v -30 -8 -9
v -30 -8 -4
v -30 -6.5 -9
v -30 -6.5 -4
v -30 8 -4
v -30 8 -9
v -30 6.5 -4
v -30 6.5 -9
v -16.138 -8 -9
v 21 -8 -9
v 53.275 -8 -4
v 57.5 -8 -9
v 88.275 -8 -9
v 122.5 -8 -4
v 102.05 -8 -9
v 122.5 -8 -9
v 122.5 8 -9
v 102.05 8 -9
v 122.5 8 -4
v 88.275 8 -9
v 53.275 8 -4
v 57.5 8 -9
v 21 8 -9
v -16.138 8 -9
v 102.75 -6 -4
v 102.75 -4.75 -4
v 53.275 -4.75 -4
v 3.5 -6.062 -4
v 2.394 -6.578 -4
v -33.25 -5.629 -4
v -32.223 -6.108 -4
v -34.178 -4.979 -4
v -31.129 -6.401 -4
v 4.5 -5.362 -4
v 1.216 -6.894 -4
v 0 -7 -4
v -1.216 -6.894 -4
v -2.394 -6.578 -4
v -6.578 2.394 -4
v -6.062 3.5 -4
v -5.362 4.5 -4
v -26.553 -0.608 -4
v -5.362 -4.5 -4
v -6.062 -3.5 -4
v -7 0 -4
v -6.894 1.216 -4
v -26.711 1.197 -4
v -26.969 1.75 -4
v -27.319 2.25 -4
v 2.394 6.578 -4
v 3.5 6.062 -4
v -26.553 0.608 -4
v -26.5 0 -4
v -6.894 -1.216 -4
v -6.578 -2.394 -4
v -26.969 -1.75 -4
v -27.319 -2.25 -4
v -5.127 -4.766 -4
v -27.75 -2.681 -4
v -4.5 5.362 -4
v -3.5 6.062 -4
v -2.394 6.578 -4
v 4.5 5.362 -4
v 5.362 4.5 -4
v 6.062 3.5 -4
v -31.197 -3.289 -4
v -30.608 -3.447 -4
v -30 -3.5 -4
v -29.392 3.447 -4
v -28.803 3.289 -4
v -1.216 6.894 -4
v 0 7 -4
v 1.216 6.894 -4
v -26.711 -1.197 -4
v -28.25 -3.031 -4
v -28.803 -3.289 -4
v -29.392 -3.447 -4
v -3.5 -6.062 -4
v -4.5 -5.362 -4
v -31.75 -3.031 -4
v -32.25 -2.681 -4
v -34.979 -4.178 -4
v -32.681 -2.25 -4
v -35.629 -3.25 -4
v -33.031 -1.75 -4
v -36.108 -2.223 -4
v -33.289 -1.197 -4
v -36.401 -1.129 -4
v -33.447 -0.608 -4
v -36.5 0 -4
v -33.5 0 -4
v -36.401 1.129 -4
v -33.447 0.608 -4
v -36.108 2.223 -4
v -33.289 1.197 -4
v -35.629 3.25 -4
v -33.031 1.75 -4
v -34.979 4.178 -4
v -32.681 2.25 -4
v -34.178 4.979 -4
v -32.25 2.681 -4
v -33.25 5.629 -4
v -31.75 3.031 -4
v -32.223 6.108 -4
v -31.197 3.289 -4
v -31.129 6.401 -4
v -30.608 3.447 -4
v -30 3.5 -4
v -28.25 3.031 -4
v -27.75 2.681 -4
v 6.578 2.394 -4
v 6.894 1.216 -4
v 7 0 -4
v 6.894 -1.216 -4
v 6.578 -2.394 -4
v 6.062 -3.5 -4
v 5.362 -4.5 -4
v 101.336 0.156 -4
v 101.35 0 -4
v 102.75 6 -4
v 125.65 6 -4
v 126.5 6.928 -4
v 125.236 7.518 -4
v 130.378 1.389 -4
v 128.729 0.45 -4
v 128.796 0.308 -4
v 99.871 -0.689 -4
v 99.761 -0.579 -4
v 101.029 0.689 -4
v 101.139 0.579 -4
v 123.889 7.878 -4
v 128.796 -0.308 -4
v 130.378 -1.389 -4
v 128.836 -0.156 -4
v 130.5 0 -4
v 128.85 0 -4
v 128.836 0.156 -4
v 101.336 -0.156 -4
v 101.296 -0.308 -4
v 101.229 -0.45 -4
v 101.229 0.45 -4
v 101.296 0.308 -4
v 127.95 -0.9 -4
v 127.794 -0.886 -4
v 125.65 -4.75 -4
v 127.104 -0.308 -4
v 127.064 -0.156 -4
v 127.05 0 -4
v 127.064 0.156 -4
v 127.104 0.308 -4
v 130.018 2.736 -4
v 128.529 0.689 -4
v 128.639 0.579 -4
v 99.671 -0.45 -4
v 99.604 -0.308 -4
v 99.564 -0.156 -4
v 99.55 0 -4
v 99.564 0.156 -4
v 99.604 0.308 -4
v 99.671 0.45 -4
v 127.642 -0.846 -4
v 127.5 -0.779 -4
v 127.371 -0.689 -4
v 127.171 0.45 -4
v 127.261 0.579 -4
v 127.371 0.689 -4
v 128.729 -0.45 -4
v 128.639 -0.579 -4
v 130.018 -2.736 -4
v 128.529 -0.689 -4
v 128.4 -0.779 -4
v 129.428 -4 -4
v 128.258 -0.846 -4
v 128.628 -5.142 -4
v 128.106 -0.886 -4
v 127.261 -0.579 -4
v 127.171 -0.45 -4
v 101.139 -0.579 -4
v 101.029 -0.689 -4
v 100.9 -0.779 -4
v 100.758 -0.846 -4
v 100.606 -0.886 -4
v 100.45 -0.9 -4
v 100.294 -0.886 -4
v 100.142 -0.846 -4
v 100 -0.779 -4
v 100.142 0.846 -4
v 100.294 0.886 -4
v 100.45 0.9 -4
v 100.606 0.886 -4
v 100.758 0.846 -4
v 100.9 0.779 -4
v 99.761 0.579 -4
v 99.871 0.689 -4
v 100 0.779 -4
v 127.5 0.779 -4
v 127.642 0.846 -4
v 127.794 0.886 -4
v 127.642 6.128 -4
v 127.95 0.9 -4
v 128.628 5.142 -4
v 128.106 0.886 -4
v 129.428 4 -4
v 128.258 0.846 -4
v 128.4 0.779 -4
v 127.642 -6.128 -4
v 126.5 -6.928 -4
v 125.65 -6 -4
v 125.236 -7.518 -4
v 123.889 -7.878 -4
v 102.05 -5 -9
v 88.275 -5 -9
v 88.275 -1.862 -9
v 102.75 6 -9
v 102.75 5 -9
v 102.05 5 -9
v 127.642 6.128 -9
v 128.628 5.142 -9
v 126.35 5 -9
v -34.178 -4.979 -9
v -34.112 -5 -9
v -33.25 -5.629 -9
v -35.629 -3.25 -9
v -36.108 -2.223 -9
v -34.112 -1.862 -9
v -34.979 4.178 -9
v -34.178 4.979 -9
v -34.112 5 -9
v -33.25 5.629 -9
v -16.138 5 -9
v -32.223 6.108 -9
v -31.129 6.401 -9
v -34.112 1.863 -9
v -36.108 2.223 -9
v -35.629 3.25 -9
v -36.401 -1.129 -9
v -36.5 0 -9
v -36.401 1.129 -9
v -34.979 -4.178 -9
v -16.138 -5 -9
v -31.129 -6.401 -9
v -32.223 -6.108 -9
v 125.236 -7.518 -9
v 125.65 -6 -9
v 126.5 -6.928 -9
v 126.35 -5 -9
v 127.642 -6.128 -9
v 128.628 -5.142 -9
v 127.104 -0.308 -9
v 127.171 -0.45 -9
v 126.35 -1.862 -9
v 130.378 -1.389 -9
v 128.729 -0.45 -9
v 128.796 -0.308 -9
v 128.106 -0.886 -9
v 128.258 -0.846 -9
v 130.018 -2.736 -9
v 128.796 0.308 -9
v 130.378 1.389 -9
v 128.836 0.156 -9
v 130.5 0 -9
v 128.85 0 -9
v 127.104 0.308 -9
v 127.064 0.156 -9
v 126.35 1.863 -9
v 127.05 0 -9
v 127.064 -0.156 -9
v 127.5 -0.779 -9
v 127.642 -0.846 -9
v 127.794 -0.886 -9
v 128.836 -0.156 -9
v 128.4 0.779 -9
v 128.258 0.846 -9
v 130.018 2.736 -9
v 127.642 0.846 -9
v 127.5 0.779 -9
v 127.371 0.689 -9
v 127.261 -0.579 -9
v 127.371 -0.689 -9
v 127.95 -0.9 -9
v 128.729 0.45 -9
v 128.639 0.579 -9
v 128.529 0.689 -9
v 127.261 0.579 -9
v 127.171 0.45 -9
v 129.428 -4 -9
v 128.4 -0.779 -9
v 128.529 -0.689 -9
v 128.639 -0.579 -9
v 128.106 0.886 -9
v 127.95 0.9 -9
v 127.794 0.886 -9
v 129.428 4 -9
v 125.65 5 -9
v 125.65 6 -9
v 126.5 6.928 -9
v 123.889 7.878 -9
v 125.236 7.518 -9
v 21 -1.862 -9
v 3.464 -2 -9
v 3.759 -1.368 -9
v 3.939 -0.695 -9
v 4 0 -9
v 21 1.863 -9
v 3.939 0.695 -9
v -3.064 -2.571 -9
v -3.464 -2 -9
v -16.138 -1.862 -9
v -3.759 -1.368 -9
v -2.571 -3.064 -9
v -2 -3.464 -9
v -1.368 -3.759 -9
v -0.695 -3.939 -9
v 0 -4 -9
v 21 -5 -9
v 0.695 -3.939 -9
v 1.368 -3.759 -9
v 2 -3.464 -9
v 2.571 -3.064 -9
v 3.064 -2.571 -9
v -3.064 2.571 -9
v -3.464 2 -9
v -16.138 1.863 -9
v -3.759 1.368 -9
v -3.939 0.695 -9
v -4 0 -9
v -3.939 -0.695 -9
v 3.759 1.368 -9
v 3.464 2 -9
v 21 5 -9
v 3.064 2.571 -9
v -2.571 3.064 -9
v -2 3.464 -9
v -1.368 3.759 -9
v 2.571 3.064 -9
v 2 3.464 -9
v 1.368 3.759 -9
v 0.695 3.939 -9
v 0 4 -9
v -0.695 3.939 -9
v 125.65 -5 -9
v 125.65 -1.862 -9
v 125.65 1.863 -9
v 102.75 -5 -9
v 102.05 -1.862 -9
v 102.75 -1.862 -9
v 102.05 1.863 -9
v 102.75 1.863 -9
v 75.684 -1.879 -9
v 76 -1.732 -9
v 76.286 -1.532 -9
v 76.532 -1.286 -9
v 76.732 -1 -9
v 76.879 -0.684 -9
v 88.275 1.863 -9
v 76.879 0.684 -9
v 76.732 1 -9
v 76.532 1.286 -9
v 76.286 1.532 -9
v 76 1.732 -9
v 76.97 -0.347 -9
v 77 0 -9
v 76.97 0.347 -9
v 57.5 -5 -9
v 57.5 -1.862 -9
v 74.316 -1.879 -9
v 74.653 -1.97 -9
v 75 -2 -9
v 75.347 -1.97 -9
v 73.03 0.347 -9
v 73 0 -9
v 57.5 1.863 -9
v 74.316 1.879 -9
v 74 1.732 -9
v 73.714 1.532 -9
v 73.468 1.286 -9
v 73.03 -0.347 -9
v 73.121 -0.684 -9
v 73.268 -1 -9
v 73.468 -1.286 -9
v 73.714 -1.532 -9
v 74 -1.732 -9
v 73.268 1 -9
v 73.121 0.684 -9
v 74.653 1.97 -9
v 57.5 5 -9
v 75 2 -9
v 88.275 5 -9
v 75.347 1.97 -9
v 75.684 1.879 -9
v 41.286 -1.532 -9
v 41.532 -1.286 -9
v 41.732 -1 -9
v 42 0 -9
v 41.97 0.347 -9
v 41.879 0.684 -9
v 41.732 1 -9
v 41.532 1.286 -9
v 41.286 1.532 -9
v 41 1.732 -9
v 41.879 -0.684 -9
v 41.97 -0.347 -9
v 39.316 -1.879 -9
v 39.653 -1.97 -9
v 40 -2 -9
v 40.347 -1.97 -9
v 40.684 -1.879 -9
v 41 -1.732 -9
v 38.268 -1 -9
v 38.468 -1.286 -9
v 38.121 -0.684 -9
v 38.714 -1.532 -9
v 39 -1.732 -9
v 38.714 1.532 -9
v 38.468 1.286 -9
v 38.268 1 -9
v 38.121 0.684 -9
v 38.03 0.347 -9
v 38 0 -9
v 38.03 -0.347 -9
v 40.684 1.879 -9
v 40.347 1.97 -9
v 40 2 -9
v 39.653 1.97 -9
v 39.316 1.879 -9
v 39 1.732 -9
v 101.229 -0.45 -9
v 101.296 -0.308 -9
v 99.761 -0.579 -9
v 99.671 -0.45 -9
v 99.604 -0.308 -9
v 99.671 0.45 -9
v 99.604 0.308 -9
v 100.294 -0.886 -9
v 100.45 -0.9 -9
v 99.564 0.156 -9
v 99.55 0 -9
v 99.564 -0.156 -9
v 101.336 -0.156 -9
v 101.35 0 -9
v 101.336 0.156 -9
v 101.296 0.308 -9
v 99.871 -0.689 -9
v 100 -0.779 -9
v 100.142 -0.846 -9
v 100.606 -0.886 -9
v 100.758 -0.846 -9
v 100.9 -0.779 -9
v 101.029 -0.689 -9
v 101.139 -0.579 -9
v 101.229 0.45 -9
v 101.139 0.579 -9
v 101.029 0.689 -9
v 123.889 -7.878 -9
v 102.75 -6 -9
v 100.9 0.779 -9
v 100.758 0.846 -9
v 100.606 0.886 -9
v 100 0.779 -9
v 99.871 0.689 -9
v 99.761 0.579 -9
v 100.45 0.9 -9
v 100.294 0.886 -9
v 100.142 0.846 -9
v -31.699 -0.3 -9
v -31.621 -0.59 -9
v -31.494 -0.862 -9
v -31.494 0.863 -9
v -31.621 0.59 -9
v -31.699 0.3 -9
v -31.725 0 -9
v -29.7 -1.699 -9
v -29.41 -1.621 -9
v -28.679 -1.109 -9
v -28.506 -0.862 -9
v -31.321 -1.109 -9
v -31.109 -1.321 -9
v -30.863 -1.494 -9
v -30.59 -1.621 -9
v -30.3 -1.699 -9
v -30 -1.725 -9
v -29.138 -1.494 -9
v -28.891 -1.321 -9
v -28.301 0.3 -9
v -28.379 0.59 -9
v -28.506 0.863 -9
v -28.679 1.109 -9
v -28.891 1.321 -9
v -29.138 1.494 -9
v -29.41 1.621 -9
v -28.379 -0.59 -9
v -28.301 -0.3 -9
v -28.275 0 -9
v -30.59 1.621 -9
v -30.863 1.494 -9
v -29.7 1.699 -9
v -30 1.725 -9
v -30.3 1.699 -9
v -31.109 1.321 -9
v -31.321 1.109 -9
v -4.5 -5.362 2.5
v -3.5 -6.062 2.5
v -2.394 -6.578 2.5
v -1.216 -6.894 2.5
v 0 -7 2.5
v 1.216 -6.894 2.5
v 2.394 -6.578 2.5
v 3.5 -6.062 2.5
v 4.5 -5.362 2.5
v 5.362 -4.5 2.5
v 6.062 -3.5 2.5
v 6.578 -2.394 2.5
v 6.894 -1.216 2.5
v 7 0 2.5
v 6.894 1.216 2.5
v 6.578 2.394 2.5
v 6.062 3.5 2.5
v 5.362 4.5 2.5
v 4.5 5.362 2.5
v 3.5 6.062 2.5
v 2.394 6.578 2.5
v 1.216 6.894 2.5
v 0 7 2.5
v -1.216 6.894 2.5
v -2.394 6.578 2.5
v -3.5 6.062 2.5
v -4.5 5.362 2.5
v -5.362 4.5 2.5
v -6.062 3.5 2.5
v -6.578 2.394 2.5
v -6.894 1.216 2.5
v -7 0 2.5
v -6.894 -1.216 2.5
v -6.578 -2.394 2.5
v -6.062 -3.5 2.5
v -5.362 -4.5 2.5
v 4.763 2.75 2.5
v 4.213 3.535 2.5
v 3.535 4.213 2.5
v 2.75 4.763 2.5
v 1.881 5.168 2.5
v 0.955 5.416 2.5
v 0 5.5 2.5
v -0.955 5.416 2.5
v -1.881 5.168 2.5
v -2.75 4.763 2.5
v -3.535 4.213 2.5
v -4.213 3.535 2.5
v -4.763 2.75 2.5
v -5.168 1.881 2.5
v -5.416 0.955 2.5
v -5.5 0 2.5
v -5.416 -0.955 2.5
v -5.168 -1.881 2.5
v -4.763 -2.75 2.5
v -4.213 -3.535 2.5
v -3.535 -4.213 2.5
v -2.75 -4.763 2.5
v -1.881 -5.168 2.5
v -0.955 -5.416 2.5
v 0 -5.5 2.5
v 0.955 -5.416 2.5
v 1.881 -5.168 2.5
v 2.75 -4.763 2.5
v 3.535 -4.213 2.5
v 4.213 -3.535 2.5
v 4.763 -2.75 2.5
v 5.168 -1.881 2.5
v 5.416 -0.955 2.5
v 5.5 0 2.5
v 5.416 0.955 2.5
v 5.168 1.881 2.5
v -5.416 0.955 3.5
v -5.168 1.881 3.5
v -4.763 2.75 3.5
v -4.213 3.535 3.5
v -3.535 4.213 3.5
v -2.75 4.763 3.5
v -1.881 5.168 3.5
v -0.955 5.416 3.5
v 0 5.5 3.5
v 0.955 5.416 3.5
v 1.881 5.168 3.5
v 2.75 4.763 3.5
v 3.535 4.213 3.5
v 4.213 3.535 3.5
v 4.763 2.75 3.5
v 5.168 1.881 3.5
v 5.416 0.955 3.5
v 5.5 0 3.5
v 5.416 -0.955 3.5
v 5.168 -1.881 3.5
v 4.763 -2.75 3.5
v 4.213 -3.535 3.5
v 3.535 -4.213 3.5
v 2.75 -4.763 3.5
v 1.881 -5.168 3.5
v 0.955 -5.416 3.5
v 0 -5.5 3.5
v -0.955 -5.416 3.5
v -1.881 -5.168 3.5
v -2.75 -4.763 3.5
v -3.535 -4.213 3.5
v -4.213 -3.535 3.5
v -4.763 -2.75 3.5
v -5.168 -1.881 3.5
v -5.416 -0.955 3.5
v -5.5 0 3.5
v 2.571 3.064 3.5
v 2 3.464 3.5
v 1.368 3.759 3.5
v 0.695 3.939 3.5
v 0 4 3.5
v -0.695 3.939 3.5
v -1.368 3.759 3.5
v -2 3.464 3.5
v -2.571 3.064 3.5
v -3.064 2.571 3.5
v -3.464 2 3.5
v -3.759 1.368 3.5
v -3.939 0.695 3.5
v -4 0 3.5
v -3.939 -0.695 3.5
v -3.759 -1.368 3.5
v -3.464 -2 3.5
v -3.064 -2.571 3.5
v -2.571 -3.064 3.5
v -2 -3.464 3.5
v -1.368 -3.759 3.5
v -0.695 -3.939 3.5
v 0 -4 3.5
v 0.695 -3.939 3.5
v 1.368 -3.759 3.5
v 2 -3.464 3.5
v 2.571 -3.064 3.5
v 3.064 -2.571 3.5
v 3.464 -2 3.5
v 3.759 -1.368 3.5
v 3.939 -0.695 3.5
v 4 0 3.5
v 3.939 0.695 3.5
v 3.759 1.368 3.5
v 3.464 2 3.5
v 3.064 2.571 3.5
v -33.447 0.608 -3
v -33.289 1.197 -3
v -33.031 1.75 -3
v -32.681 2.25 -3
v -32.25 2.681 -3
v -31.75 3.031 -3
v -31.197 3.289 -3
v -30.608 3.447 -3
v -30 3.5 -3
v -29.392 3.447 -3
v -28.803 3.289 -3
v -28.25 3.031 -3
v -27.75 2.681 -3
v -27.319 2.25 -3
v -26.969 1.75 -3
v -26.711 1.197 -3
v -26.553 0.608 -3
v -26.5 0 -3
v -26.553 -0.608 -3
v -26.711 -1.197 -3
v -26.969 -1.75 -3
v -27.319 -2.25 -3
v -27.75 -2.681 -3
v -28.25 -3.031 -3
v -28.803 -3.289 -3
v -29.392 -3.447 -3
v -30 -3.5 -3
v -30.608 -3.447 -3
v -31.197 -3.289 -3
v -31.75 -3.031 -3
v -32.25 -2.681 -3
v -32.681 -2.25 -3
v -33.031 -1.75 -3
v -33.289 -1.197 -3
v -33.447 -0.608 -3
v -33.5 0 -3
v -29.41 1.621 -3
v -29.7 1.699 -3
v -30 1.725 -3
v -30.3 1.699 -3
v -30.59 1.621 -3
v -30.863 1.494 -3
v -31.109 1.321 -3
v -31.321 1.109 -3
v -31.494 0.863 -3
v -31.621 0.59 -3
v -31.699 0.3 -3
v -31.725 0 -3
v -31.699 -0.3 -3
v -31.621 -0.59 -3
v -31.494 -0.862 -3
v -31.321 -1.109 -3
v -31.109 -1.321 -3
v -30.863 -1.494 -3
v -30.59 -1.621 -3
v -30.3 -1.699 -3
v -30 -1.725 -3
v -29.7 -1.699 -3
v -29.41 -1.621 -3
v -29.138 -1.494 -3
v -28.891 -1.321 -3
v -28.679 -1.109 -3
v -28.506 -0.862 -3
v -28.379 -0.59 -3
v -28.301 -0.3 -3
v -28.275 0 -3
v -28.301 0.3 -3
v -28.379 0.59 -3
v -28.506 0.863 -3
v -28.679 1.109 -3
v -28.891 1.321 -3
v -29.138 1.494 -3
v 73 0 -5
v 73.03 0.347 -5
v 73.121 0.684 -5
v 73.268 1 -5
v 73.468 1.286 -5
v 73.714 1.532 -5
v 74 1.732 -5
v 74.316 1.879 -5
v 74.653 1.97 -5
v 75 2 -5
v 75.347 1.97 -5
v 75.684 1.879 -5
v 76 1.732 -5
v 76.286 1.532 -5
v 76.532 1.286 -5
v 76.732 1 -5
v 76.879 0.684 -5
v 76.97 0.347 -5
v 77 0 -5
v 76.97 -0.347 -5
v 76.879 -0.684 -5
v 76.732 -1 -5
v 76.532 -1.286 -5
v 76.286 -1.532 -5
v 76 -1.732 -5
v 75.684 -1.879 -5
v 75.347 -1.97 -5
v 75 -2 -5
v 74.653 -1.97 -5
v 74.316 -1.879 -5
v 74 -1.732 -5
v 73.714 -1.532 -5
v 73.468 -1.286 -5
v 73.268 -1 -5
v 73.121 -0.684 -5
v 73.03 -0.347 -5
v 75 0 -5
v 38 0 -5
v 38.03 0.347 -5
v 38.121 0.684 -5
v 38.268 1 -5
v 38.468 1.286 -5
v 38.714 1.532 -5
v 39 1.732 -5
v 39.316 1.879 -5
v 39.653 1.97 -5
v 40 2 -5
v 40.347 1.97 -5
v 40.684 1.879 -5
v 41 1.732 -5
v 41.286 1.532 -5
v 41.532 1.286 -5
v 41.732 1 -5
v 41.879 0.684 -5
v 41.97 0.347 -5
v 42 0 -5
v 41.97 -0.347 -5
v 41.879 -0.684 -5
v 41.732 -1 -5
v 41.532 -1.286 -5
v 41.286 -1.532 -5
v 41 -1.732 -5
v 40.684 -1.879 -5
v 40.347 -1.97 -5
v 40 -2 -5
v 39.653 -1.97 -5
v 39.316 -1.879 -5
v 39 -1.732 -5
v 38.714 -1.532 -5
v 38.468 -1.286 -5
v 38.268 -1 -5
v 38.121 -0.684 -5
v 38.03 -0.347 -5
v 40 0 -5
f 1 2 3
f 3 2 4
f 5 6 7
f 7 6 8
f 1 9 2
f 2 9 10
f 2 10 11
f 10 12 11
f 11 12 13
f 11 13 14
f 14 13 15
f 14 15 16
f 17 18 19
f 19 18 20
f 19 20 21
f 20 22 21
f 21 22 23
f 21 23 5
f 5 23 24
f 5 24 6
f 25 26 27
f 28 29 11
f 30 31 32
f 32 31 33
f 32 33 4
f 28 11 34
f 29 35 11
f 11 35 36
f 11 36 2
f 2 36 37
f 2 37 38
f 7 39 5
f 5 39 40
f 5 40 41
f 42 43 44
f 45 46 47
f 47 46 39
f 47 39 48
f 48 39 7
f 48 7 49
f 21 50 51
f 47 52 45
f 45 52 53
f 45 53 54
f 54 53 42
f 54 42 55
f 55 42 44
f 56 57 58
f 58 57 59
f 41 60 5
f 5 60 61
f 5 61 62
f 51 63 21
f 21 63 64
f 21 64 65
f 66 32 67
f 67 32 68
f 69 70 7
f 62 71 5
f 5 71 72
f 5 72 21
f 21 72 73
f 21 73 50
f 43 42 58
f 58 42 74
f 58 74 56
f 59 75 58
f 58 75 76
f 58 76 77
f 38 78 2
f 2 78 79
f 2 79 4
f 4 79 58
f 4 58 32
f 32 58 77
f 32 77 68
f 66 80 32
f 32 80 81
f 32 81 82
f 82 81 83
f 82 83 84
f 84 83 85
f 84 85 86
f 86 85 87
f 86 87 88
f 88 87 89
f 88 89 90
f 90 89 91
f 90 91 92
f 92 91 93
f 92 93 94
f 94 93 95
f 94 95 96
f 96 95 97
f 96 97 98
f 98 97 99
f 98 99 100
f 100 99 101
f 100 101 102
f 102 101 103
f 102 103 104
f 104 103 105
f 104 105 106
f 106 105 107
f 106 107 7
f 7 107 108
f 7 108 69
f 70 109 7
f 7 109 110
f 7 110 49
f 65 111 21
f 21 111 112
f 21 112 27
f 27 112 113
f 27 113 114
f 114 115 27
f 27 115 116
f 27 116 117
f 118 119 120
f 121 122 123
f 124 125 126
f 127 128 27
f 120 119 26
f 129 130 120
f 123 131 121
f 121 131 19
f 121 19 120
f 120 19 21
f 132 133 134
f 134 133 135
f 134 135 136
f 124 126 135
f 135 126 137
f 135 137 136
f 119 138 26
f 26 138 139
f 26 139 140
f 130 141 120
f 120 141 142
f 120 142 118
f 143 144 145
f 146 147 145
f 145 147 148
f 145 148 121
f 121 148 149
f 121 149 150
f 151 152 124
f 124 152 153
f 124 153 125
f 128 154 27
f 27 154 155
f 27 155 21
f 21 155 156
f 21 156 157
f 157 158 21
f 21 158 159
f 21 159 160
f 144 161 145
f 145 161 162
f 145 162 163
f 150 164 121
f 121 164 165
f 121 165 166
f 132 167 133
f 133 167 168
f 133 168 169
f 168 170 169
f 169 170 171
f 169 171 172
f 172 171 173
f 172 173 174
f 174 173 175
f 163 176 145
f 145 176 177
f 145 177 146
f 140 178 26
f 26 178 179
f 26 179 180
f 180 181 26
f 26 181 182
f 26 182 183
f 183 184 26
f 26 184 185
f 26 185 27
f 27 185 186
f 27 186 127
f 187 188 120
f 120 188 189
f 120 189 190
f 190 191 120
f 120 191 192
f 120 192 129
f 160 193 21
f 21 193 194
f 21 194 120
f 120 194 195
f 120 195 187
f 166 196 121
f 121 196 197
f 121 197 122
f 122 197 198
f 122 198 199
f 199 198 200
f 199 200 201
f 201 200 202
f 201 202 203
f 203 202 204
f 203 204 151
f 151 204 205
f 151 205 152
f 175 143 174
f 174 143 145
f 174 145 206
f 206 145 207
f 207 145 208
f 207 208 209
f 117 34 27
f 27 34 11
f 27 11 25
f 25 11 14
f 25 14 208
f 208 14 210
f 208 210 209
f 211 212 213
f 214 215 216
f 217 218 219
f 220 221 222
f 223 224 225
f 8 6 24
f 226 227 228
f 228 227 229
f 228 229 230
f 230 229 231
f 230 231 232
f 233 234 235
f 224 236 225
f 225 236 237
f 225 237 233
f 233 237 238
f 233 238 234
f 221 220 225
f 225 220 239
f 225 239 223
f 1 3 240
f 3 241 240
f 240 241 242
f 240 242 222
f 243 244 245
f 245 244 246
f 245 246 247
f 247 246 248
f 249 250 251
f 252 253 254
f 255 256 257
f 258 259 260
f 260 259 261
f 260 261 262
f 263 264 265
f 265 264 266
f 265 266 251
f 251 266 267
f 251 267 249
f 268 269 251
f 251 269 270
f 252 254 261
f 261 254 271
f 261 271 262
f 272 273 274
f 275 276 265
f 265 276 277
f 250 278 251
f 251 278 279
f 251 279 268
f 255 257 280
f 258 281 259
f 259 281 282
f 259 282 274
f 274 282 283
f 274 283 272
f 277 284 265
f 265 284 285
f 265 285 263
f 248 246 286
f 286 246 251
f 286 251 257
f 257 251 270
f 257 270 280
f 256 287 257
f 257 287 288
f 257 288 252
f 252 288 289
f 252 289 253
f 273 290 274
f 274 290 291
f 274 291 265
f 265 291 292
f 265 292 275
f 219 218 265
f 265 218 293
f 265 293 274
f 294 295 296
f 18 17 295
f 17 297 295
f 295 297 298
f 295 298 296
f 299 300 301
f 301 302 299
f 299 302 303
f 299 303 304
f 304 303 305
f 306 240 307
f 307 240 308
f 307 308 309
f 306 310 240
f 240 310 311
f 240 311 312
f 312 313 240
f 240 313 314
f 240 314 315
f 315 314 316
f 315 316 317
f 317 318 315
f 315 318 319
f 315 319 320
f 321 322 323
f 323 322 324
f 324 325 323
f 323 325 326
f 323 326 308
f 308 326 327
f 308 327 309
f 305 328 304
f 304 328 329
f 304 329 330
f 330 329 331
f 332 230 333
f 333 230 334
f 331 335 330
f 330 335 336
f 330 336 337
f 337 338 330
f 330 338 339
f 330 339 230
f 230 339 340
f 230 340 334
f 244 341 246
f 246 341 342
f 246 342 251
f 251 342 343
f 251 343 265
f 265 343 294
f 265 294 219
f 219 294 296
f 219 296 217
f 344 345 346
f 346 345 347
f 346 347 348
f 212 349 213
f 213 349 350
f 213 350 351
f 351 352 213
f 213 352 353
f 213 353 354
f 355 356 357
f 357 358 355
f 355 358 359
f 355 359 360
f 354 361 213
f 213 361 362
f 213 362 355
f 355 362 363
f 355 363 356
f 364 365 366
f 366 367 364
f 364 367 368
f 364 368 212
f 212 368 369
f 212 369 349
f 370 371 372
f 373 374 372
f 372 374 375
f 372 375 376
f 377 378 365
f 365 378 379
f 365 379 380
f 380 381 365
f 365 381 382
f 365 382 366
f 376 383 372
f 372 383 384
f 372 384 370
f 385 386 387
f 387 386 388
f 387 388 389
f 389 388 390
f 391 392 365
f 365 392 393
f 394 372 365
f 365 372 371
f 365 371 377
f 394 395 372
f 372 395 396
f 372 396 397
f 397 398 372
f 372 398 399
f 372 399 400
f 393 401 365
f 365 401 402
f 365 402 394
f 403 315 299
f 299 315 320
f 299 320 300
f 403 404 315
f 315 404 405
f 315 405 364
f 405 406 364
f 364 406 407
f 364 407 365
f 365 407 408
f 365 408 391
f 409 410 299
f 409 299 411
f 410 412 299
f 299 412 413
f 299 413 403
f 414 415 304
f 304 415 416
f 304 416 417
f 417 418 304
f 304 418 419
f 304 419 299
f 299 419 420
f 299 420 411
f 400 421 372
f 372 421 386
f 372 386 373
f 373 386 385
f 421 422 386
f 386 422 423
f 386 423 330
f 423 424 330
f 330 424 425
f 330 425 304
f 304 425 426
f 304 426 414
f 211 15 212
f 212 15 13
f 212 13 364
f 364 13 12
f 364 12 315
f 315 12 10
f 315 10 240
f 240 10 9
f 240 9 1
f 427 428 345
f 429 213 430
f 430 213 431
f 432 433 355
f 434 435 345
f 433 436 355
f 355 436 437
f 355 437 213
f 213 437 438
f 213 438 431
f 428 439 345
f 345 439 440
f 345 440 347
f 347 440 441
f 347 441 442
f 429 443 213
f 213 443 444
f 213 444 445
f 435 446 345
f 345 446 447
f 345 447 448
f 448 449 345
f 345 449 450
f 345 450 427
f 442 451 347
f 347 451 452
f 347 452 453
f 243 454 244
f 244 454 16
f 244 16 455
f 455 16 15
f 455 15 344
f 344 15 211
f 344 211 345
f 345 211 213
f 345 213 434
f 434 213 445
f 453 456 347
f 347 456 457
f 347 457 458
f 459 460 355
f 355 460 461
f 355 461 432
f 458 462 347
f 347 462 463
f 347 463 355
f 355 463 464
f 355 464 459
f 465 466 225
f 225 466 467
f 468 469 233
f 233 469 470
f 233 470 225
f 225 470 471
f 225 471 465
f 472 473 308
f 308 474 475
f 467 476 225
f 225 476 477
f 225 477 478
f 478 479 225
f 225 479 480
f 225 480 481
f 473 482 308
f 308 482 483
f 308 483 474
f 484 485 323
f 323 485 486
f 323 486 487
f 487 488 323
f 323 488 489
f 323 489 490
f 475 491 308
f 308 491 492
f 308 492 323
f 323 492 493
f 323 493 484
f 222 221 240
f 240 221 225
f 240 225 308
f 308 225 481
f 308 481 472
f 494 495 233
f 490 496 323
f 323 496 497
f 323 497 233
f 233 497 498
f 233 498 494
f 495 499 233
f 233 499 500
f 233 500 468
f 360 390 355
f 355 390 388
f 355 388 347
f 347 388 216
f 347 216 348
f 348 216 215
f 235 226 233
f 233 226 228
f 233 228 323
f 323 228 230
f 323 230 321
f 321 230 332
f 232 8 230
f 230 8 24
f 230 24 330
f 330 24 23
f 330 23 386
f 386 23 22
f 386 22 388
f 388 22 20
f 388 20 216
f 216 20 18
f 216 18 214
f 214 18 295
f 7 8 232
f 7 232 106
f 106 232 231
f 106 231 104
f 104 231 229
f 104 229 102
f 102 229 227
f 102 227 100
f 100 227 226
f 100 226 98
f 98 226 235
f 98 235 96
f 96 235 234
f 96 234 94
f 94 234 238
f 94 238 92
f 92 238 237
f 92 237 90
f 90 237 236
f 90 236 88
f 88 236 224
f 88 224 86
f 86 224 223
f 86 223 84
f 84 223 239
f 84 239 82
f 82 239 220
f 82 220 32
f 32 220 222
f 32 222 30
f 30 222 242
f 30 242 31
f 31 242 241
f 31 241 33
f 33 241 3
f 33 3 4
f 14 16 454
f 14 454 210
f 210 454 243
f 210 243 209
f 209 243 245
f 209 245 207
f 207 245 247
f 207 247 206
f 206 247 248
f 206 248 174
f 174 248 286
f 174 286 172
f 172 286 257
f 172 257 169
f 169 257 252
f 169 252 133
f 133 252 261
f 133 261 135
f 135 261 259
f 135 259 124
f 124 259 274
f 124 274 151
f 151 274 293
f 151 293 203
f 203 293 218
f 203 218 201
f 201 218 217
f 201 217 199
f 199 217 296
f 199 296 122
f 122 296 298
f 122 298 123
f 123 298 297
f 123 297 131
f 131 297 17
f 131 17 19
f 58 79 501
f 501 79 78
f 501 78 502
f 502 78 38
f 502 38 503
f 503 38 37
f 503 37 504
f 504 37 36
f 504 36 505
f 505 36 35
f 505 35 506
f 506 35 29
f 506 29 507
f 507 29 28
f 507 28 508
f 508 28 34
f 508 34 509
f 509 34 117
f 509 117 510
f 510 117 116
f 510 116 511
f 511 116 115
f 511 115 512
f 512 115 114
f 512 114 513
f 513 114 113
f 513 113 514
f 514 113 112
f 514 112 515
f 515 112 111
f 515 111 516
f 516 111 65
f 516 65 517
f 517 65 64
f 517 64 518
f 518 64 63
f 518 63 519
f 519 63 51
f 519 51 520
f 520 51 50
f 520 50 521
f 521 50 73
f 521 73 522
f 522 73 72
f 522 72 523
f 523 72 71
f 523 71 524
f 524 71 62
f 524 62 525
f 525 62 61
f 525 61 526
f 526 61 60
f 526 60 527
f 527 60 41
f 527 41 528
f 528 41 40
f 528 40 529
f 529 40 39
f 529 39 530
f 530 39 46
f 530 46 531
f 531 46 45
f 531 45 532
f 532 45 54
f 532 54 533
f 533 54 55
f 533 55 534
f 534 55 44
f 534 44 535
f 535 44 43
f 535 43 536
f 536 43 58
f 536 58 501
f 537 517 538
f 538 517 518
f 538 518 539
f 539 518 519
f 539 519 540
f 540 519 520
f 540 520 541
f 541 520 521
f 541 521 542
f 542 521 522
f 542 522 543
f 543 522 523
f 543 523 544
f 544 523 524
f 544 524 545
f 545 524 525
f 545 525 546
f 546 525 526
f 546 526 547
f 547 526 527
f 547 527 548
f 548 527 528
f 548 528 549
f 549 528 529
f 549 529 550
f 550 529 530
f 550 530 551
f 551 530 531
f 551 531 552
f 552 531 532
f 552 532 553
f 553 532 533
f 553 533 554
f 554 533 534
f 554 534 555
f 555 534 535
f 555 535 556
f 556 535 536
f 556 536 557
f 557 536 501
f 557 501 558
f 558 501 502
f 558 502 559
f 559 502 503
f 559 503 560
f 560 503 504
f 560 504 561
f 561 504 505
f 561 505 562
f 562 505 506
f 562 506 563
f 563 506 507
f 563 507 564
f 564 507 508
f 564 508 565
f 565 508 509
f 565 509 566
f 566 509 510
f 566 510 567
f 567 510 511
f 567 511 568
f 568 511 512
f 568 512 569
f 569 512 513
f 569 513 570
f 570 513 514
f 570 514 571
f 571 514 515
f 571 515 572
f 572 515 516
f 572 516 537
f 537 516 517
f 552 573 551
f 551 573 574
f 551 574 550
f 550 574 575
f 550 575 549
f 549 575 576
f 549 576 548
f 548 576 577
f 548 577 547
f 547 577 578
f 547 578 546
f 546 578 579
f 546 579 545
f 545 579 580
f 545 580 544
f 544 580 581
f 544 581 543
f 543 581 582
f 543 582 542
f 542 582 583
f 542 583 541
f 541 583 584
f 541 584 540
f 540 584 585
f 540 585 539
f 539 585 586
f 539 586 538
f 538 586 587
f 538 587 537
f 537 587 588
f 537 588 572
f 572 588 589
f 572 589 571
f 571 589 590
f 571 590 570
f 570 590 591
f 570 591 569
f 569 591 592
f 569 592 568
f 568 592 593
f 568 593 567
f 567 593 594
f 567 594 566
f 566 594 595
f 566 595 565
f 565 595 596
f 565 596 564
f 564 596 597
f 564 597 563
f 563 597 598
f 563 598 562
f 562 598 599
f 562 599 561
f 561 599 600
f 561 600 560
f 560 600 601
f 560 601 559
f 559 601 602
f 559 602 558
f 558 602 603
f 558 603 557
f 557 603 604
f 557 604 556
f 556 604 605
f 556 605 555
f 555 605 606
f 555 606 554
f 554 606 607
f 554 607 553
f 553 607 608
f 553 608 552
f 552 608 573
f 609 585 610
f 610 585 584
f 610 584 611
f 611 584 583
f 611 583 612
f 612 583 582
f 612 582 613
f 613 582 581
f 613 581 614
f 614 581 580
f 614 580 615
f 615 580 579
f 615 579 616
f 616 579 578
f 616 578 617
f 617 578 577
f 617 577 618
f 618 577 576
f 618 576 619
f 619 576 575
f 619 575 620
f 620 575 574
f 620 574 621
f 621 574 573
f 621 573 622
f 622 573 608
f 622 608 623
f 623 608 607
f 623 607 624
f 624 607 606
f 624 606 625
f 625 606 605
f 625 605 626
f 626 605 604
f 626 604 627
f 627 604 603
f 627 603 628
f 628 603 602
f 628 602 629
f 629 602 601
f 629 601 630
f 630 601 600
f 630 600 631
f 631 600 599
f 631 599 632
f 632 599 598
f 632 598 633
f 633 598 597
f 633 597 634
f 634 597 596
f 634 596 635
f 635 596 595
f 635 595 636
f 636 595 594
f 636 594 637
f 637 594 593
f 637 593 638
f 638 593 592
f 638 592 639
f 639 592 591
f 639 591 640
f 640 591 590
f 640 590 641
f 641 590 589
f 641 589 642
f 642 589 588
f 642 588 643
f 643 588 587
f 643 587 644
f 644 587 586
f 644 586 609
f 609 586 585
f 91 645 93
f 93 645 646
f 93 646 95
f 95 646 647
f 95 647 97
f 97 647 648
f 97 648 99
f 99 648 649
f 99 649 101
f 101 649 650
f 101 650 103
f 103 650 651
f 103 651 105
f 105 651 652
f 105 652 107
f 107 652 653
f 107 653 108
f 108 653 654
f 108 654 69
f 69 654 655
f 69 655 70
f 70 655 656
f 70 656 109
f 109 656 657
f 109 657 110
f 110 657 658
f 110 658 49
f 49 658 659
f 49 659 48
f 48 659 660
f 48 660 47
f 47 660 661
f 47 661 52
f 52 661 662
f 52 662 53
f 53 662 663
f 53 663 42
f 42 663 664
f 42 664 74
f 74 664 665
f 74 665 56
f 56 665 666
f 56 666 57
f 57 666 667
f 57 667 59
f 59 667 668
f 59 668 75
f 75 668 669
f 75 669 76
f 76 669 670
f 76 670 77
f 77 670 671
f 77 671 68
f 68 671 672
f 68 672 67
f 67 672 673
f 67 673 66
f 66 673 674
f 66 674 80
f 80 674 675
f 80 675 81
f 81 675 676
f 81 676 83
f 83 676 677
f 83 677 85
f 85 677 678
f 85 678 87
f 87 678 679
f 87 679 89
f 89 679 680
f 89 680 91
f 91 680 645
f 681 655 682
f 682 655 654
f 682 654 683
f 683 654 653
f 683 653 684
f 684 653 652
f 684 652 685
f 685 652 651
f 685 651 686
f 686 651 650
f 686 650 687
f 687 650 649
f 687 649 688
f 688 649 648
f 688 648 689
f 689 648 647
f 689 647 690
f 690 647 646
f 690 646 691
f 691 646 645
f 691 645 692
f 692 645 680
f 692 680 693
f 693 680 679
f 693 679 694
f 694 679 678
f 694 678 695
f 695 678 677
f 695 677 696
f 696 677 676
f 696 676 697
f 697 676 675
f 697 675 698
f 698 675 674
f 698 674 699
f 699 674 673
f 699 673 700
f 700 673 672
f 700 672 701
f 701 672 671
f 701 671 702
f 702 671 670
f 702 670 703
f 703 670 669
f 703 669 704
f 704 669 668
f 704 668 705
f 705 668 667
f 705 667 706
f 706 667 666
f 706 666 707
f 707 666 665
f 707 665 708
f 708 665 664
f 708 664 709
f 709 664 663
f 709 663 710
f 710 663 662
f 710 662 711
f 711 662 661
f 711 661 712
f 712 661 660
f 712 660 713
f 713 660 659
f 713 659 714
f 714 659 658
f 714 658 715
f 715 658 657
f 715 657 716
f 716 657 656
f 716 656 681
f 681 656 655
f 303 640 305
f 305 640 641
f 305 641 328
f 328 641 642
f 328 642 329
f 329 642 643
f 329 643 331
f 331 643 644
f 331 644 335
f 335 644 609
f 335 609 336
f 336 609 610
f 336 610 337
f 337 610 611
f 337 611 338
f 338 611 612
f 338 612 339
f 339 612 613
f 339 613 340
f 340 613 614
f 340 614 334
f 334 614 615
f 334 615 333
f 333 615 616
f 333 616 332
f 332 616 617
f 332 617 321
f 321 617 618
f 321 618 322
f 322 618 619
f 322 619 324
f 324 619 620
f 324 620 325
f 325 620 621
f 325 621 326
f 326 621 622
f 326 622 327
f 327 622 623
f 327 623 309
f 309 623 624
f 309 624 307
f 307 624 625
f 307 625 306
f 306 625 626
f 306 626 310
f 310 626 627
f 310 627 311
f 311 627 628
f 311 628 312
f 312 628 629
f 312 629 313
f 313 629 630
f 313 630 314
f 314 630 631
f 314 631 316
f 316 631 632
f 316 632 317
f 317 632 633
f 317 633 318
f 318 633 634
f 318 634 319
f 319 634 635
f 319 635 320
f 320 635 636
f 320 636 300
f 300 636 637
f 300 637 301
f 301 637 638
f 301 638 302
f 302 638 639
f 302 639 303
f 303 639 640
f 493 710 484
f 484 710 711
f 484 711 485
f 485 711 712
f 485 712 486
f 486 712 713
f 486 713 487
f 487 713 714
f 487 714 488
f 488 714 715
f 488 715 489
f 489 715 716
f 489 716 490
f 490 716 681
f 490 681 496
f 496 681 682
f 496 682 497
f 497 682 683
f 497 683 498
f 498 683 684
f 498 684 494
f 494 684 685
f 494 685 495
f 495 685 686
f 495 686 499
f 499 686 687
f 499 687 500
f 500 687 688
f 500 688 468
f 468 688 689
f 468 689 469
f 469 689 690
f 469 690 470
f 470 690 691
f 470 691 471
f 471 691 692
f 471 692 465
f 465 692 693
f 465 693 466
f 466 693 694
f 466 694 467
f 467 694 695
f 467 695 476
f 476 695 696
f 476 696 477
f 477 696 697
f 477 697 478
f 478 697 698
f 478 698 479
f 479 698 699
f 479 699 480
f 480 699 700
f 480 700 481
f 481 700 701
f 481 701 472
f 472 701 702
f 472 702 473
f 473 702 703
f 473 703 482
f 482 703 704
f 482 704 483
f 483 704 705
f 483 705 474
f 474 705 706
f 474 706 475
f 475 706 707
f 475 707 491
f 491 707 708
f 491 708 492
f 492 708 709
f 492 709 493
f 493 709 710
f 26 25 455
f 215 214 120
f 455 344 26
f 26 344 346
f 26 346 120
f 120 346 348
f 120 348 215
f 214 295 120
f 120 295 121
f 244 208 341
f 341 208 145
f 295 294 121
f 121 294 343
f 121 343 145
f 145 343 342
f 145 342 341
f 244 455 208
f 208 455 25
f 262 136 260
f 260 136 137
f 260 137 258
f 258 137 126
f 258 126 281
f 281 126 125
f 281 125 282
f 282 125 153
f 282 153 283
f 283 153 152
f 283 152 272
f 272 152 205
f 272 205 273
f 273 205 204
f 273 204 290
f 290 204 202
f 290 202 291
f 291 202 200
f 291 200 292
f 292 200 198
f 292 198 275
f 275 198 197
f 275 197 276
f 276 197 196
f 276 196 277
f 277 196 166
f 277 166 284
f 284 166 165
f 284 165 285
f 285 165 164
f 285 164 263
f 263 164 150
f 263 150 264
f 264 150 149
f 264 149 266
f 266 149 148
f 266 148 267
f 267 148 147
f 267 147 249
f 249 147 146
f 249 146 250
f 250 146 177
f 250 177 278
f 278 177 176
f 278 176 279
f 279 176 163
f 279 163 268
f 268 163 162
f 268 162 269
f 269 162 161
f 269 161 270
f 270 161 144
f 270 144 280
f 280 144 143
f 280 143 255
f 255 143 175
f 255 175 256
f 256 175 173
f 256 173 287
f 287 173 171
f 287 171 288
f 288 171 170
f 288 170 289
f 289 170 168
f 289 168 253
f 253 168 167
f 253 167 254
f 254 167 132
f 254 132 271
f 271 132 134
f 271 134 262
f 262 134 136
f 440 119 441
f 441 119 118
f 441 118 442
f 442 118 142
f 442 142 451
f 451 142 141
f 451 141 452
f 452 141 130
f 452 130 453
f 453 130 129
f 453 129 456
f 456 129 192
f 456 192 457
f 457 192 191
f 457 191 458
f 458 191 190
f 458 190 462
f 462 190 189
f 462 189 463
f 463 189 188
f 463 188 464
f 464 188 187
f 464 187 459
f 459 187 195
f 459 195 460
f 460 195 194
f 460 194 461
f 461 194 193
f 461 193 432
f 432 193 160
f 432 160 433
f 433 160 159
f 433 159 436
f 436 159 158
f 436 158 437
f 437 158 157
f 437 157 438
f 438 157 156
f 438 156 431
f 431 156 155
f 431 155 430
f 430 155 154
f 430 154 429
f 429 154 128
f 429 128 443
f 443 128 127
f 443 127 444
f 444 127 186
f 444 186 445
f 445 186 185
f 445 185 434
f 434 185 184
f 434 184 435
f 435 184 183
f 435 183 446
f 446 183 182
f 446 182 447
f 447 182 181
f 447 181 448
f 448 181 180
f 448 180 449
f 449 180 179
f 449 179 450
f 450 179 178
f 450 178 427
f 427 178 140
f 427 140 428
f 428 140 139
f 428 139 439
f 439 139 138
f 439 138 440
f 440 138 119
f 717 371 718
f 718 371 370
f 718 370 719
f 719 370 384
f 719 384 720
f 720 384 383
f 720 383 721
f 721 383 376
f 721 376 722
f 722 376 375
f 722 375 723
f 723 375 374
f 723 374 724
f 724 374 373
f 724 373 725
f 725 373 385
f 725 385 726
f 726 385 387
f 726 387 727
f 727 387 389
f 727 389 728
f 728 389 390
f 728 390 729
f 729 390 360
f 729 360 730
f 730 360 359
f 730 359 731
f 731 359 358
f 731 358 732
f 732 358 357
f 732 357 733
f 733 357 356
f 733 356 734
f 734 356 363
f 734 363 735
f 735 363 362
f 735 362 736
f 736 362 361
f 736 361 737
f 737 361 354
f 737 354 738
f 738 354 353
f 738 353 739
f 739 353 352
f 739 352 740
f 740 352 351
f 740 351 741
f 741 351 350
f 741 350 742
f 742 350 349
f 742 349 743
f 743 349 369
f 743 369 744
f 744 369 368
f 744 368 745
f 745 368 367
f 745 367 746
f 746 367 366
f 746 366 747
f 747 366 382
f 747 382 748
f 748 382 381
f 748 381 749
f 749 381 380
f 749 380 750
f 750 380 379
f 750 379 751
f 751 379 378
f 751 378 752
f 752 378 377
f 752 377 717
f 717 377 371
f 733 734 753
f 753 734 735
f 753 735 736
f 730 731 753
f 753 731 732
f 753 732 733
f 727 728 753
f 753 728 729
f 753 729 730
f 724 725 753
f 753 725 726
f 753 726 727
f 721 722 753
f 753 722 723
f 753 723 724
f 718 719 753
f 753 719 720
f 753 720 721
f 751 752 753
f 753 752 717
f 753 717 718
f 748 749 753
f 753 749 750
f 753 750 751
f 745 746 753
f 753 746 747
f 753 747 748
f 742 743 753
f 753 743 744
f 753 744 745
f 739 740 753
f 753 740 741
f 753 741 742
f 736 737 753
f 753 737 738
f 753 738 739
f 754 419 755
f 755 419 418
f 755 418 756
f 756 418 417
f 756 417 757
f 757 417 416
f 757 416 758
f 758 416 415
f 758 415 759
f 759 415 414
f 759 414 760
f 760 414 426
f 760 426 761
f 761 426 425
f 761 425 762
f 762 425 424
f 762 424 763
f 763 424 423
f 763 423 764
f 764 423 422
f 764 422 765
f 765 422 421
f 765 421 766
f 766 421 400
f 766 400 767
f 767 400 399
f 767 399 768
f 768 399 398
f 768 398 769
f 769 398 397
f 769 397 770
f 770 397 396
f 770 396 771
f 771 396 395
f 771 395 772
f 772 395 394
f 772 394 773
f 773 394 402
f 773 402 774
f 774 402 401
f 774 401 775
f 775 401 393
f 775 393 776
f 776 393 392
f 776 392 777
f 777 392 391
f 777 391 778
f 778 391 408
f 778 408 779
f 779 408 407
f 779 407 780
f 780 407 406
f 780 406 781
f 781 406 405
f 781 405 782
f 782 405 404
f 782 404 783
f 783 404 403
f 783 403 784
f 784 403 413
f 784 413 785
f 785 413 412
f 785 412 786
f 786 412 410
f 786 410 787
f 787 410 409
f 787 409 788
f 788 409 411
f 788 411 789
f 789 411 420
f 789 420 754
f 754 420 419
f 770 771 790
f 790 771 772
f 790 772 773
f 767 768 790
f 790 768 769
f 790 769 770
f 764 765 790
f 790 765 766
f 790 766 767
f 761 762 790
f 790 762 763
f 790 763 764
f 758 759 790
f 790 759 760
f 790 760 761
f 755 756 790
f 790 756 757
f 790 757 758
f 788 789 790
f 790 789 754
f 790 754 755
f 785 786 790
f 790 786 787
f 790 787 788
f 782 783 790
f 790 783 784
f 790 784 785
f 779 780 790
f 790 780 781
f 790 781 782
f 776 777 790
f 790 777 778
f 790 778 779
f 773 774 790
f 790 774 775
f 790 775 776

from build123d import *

# Parameters (mm, degrees)
BOSS_EXTRUDE1_START     = -9
SKETCH1_W               = 152.45
SKETCH1_H               = 16
BOSS_EXTRUDE1_DEPTH     = 5
BOSS_EXTRUDE2_START     = -9
SKETCH2_R               = 6.5
BOSS_EXTRUDE2_DEPTH     = 5
BOSS_EXTRUDE3_START     = -9
SKETCH3_R               = 8
BOSS_EXTRUDE3_DEPTH     = 5
BOSS_EXTRUDE4_START     = -9
SKETCH4_R               = 7
BOSS_EXTRUDE4_DEPTH     = 11.5
BOSS_EXTRUDE5_START     = 2.5
SKETCH5_R               = 5.5
BOSS_EXTRUDE5_DEPTH     = 1
BOSS_EXTRUDE6_START     = -4
SKETCH6_R               = 3.5
BOSS_EXTRUDE6_DEPTH     = 1
CUT_EXTRUDE1_DEPTH      = 132.004589614
CUT_EXTRUDE1_DEPTH_BACK = 132.004589614
SKETCH7_R               = 4
CUT_EXTRUDE2_DEPTH      = 132.004589614
CUT_EXTRUDE2_DEPTH_BACK = 132.004589614
SKETCH8_R               = 1.725
CUT_EXTRUDE3_DEPTH      = 132.004589614
CUT_EXTRUDE3_DEPTH_BACK = 132.004589614
SKETCH9_W               = 22.8
SKETCH9_H               = 11.9
CUT_EXTRUDE4_DEPTH      = 132.004589614
CUT_EXTRUDE4_DEPTH_BACK = 132.004589614
SKETCH10_R              = 0.9
CUT_EXTRUDE5_START      = -9
SKETCH11_R              = 2
CUT_EXTRUDE5_DEPTH      = 4


with BuildPart() as part:
    # Sketch1 → Boss-Extrude1 (new body)
    with BuildSketch(Plane.XY.offset(BOSS_EXTRUDE1_START)):
        with Locations((46.225, 0)):
            Rectangle(SKETCH1_W, SKETCH1_H)
    extrude(amount=BOSS_EXTRUDE1_DEPTH)

    # Sketch2 → Boss-Extrude2 (add)
    with BuildSketch(Plane.XY.offset(BOSS_EXTRUDE2_START)):
        with Locations((-30, 0)):
            Circle(SKETCH2_R)
    extrude(amount=BOSS_EXTRUDE2_DEPTH)

    # Sketch3 → Boss-Extrude3 (add)
    with BuildSketch(Plane.XY.offset(BOSS_EXTRUDE3_START)):
        with Locations((122.45, 0)):
            Circle(SKETCH3_R)
    extrude(amount=BOSS_EXTRUDE3_DEPTH)

    # Sketch4 → Boss-Extrude4 (add)
    with BuildSketch(Plane.XY.offset(BOSS_EXTRUDE4_START)):
        Circle(SKETCH4_R)
    extrude(amount=BOSS_EXTRUDE4_DEPTH)

    # Sketch5 → Boss-Extrude5 (add)
    with BuildSketch(Plane.XY.offset(BOSS_EXTRUDE5_START)):
        Circle(SKETCH5_R)
    extrude(amount=BOSS_EXTRUDE5_DEPTH)

    # Sketch6 → Boss-Extrude6 (add)
    with BuildSketch(Plane.XY.offset(BOSS_EXTRUDE6_START)):
        with Locations((-30, 0)):
            Circle(SKETCH6_R)
    extrude(amount=BOSS_EXTRUDE6_DEPTH)

    # Sketch7 → Cut-Extrude1 (cut, two sides: drawn at the far end of the back side and taken through both)
    with BuildSketch(Plane.XY.offset(-CUT_EXTRUDE1_DEPTH_BACK)):
        Circle(SKETCH7_R)
    extrude(amount=CUT_EXTRUDE1_DEPTH + CUT_EXTRUDE1_DEPTH_BACK, mode=Mode.SUBTRACT)

    # Sketch8 → Cut-Extrude2 (cut, two sides: drawn at the far end of the back side and taken through both)
    with BuildSketch(Plane.XY.offset(-CUT_EXTRUDE2_DEPTH_BACK)):
        with Locations((-30, 0)):
            Circle(SKETCH8_R)
    extrude(amount=CUT_EXTRUDE2_DEPTH + CUT_EXTRUDE2_DEPTH_BACK, mode=Mode.SUBTRACT)

    # Sketch9 → Cut-Extrude3 (cut, two sides: drawn at the far end of the back side and taken through both)
    with BuildSketch(Plane.XY.offset(-CUT_EXTRUDE3_DEPTH_BACK)):
        with Locations((114.2, 0)):
            Rectangle(SKETCH9_W, SKETCH9_H)
    extrude(amount=CUT_EXTRUDE3_DEPTH + CUT_EXTRUDE3_DEPTH_BACK, mode=Mode.SUBTRACT)

    # Sketch10 → Cut-Extrude4 (cut, two sides: drawn at the far end of the back side and taken through both)
    with BuildSketch(Plane.XY.offset(-CUT_EXTRUDE4_DEPTH_BACK)):
        with Locations((100.45, 0)):
            Circle(SKETCH10_R)
        with Locations((127.95, 0)):
            Circle(SKETCH10_R)
    extrude(amount=CUT_EXTRUDE4_DEPTH + CUT_EXTRUDE4_DEPTH_BACK, mode=Mode.SUBTRACT)

    # Sketch11 → Cut-Extrude5 (cut)
    with BuildSketch(Plane.XY.offset(CUT_EXTRUDE5_START)):
        with Locations((40, 0)):
            Circle(SKETCH11_R)
        with Locations((75, 0)):
            Circle(SKETCH11_R)
    extrude(amount=CUT_EXTRUDE5_DEPTH, mode=Mode.SUBTRACT)


solid = part.part
